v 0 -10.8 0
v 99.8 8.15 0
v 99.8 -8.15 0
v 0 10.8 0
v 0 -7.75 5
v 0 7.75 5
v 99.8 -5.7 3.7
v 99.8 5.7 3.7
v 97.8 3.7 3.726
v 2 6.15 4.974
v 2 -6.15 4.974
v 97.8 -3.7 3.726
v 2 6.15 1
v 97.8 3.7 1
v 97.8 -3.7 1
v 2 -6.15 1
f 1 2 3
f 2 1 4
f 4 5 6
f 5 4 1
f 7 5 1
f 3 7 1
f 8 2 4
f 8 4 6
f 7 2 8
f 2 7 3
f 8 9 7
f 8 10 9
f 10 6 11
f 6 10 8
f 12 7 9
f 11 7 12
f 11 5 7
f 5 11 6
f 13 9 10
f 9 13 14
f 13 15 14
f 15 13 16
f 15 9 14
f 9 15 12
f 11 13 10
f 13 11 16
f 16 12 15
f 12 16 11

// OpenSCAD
// file: noyau/utils.scad
// Some random colors
module plastic()   { color([  1,  .7,   0]) children(); }
module gray()      { color([ .4,  .4,  .4]) children(); }
module black()     { color([ .3,  .3,  .3]) children(); }
module orange()    { color([  1,  .7,   0]) children(); }
module yellow()    { color([ .7,  .7,  .3]) children(); }
module green_pcb() { color([ .0,  .5, .25]) children(); }
module metal()     { color([ .7,  .7,  .7]) children(); }
module gold()      { color([ .8,  .5,  .0]) children(); }
module stainless() { color([.45, .43,  .5]) children(); }
module steel()     { color([.65, .67, .72]) children(); }
module iron()      { color([.36, .33, .33]) children(); }

// Same as mirror() but duplicates the children as opposed to just moving them.
module mirrored(v) {
  union() {
    children();
    mirror(v = v)
      children();
  } 
}

// Build a negative rounded corner to soften a square angle. Extra adds more
// material behind the rounded corner, which is sometimes useful to remove
// stuff.
module rounded_edge(radius, height, extra = 0) {
  translate([radius / 2, radius / 2, 0])
    difference() {
      translate([-extra/2, -extra/2, 0])
      cube([radius + .01 + extra, radius + .01 + extra, height + .01], center = true);
      translate([radius / 2, radius /2, 0])
        cylinder(r = radius, h = height + .02, center = true);
    }
}

// Build a cube with the corners in the z plane softened.
module rounded_cube(v, radius) {
  difference() {
    cube(v, center=true);
    mirrored([0, 1, 0]) mirrored([1, 0, 0])
      translate([-v[0]/2,-v[1]/2,0])
        rounded_edge(radius, v[2]);
  }
}

function number_of_circle_fragments(r) =
  $fn>0 ? ($fn >= 3 ? $fn : 3)
        : ceil(max(min(360 / $fa,
                       r * 2 * PI / $fs),
                   5));

// Build a cylinder garanteed to fit and element of the given radius. Aka, a
// little bit larger than a regular cylinder. Very useful with small fn.
module cylinder_outer(height,radius) {
  fn = number_of_circle_fragments(radius);
  fudge = 1 / cos(180 / fn);
  cylinder(h = height, r = radius * fudge, center = true);
}

// examples
translate([20, 20, 0]) rounded_edge(10, 5, 3);
translate([-20, 20, 0]) rounded_cube([20,15,5], 5);
mirrored([1, 0, 0]) translate([-20, -20, 0])difference() {
  cylinder_outer(5, 12, $fn = 6);
  cylinder(h = 6, r = 12, center = true);
}
// main file
// A replacement for the plastic cover on the bar right below the windshield on
// a KTM 790 Adventure..

use <noyau/utils.scad>;

bottom_width = 16.30;
bottom_width_inside = 11.40;
top_width = 21.60;
top_width_inside = 15.5;

length = 99.80;

bottom_height = 3.70;
top_height = 5;

body_points = [
 [0, top_width/2, 0],  // 0 Top tribord
 [0, -top_width/2, 0], // 1 top babord
 [length, -bottom_width/2, 0], // 2 bottom babord
 [length, bottom_width/2, 0], // 3 bottom tribord

 [0, top_width_inside/2, top_height],  // 4 Top inside tribord
 [0, -top_width_inside/2, top_height], // 5 top babord
 [length, -bottom_width_inside/2, bottom_height], // 6 bottom babord
 [length, bottom_width_inside/2, bottom_height], // 7 bottom tribord
];

module body() {
  polyhedron( points = body_points, faces = [
    [0,1,2,3], // front face
    [4,5,1,0], // top face
    [5,6,2,1], // babord
    [0,3,7,4], // tribord
    [6,7,3,2], // bottom
    [7,6,5,4], // back face
  ]);
}


module deep_body() {
  difference() {
    body();

    #translate([0,0,1]) linear_extrude(5) #polygon([
      [2, -bottom_width/2 + 2], 
      [2, bottom_width/2 - 2], 
      [length-2, bottom_width_inside/2 - 2 ], 
      [length-2, -bottom_width_inside/2 + 2]
    ]);
  }
}

deep_body();
